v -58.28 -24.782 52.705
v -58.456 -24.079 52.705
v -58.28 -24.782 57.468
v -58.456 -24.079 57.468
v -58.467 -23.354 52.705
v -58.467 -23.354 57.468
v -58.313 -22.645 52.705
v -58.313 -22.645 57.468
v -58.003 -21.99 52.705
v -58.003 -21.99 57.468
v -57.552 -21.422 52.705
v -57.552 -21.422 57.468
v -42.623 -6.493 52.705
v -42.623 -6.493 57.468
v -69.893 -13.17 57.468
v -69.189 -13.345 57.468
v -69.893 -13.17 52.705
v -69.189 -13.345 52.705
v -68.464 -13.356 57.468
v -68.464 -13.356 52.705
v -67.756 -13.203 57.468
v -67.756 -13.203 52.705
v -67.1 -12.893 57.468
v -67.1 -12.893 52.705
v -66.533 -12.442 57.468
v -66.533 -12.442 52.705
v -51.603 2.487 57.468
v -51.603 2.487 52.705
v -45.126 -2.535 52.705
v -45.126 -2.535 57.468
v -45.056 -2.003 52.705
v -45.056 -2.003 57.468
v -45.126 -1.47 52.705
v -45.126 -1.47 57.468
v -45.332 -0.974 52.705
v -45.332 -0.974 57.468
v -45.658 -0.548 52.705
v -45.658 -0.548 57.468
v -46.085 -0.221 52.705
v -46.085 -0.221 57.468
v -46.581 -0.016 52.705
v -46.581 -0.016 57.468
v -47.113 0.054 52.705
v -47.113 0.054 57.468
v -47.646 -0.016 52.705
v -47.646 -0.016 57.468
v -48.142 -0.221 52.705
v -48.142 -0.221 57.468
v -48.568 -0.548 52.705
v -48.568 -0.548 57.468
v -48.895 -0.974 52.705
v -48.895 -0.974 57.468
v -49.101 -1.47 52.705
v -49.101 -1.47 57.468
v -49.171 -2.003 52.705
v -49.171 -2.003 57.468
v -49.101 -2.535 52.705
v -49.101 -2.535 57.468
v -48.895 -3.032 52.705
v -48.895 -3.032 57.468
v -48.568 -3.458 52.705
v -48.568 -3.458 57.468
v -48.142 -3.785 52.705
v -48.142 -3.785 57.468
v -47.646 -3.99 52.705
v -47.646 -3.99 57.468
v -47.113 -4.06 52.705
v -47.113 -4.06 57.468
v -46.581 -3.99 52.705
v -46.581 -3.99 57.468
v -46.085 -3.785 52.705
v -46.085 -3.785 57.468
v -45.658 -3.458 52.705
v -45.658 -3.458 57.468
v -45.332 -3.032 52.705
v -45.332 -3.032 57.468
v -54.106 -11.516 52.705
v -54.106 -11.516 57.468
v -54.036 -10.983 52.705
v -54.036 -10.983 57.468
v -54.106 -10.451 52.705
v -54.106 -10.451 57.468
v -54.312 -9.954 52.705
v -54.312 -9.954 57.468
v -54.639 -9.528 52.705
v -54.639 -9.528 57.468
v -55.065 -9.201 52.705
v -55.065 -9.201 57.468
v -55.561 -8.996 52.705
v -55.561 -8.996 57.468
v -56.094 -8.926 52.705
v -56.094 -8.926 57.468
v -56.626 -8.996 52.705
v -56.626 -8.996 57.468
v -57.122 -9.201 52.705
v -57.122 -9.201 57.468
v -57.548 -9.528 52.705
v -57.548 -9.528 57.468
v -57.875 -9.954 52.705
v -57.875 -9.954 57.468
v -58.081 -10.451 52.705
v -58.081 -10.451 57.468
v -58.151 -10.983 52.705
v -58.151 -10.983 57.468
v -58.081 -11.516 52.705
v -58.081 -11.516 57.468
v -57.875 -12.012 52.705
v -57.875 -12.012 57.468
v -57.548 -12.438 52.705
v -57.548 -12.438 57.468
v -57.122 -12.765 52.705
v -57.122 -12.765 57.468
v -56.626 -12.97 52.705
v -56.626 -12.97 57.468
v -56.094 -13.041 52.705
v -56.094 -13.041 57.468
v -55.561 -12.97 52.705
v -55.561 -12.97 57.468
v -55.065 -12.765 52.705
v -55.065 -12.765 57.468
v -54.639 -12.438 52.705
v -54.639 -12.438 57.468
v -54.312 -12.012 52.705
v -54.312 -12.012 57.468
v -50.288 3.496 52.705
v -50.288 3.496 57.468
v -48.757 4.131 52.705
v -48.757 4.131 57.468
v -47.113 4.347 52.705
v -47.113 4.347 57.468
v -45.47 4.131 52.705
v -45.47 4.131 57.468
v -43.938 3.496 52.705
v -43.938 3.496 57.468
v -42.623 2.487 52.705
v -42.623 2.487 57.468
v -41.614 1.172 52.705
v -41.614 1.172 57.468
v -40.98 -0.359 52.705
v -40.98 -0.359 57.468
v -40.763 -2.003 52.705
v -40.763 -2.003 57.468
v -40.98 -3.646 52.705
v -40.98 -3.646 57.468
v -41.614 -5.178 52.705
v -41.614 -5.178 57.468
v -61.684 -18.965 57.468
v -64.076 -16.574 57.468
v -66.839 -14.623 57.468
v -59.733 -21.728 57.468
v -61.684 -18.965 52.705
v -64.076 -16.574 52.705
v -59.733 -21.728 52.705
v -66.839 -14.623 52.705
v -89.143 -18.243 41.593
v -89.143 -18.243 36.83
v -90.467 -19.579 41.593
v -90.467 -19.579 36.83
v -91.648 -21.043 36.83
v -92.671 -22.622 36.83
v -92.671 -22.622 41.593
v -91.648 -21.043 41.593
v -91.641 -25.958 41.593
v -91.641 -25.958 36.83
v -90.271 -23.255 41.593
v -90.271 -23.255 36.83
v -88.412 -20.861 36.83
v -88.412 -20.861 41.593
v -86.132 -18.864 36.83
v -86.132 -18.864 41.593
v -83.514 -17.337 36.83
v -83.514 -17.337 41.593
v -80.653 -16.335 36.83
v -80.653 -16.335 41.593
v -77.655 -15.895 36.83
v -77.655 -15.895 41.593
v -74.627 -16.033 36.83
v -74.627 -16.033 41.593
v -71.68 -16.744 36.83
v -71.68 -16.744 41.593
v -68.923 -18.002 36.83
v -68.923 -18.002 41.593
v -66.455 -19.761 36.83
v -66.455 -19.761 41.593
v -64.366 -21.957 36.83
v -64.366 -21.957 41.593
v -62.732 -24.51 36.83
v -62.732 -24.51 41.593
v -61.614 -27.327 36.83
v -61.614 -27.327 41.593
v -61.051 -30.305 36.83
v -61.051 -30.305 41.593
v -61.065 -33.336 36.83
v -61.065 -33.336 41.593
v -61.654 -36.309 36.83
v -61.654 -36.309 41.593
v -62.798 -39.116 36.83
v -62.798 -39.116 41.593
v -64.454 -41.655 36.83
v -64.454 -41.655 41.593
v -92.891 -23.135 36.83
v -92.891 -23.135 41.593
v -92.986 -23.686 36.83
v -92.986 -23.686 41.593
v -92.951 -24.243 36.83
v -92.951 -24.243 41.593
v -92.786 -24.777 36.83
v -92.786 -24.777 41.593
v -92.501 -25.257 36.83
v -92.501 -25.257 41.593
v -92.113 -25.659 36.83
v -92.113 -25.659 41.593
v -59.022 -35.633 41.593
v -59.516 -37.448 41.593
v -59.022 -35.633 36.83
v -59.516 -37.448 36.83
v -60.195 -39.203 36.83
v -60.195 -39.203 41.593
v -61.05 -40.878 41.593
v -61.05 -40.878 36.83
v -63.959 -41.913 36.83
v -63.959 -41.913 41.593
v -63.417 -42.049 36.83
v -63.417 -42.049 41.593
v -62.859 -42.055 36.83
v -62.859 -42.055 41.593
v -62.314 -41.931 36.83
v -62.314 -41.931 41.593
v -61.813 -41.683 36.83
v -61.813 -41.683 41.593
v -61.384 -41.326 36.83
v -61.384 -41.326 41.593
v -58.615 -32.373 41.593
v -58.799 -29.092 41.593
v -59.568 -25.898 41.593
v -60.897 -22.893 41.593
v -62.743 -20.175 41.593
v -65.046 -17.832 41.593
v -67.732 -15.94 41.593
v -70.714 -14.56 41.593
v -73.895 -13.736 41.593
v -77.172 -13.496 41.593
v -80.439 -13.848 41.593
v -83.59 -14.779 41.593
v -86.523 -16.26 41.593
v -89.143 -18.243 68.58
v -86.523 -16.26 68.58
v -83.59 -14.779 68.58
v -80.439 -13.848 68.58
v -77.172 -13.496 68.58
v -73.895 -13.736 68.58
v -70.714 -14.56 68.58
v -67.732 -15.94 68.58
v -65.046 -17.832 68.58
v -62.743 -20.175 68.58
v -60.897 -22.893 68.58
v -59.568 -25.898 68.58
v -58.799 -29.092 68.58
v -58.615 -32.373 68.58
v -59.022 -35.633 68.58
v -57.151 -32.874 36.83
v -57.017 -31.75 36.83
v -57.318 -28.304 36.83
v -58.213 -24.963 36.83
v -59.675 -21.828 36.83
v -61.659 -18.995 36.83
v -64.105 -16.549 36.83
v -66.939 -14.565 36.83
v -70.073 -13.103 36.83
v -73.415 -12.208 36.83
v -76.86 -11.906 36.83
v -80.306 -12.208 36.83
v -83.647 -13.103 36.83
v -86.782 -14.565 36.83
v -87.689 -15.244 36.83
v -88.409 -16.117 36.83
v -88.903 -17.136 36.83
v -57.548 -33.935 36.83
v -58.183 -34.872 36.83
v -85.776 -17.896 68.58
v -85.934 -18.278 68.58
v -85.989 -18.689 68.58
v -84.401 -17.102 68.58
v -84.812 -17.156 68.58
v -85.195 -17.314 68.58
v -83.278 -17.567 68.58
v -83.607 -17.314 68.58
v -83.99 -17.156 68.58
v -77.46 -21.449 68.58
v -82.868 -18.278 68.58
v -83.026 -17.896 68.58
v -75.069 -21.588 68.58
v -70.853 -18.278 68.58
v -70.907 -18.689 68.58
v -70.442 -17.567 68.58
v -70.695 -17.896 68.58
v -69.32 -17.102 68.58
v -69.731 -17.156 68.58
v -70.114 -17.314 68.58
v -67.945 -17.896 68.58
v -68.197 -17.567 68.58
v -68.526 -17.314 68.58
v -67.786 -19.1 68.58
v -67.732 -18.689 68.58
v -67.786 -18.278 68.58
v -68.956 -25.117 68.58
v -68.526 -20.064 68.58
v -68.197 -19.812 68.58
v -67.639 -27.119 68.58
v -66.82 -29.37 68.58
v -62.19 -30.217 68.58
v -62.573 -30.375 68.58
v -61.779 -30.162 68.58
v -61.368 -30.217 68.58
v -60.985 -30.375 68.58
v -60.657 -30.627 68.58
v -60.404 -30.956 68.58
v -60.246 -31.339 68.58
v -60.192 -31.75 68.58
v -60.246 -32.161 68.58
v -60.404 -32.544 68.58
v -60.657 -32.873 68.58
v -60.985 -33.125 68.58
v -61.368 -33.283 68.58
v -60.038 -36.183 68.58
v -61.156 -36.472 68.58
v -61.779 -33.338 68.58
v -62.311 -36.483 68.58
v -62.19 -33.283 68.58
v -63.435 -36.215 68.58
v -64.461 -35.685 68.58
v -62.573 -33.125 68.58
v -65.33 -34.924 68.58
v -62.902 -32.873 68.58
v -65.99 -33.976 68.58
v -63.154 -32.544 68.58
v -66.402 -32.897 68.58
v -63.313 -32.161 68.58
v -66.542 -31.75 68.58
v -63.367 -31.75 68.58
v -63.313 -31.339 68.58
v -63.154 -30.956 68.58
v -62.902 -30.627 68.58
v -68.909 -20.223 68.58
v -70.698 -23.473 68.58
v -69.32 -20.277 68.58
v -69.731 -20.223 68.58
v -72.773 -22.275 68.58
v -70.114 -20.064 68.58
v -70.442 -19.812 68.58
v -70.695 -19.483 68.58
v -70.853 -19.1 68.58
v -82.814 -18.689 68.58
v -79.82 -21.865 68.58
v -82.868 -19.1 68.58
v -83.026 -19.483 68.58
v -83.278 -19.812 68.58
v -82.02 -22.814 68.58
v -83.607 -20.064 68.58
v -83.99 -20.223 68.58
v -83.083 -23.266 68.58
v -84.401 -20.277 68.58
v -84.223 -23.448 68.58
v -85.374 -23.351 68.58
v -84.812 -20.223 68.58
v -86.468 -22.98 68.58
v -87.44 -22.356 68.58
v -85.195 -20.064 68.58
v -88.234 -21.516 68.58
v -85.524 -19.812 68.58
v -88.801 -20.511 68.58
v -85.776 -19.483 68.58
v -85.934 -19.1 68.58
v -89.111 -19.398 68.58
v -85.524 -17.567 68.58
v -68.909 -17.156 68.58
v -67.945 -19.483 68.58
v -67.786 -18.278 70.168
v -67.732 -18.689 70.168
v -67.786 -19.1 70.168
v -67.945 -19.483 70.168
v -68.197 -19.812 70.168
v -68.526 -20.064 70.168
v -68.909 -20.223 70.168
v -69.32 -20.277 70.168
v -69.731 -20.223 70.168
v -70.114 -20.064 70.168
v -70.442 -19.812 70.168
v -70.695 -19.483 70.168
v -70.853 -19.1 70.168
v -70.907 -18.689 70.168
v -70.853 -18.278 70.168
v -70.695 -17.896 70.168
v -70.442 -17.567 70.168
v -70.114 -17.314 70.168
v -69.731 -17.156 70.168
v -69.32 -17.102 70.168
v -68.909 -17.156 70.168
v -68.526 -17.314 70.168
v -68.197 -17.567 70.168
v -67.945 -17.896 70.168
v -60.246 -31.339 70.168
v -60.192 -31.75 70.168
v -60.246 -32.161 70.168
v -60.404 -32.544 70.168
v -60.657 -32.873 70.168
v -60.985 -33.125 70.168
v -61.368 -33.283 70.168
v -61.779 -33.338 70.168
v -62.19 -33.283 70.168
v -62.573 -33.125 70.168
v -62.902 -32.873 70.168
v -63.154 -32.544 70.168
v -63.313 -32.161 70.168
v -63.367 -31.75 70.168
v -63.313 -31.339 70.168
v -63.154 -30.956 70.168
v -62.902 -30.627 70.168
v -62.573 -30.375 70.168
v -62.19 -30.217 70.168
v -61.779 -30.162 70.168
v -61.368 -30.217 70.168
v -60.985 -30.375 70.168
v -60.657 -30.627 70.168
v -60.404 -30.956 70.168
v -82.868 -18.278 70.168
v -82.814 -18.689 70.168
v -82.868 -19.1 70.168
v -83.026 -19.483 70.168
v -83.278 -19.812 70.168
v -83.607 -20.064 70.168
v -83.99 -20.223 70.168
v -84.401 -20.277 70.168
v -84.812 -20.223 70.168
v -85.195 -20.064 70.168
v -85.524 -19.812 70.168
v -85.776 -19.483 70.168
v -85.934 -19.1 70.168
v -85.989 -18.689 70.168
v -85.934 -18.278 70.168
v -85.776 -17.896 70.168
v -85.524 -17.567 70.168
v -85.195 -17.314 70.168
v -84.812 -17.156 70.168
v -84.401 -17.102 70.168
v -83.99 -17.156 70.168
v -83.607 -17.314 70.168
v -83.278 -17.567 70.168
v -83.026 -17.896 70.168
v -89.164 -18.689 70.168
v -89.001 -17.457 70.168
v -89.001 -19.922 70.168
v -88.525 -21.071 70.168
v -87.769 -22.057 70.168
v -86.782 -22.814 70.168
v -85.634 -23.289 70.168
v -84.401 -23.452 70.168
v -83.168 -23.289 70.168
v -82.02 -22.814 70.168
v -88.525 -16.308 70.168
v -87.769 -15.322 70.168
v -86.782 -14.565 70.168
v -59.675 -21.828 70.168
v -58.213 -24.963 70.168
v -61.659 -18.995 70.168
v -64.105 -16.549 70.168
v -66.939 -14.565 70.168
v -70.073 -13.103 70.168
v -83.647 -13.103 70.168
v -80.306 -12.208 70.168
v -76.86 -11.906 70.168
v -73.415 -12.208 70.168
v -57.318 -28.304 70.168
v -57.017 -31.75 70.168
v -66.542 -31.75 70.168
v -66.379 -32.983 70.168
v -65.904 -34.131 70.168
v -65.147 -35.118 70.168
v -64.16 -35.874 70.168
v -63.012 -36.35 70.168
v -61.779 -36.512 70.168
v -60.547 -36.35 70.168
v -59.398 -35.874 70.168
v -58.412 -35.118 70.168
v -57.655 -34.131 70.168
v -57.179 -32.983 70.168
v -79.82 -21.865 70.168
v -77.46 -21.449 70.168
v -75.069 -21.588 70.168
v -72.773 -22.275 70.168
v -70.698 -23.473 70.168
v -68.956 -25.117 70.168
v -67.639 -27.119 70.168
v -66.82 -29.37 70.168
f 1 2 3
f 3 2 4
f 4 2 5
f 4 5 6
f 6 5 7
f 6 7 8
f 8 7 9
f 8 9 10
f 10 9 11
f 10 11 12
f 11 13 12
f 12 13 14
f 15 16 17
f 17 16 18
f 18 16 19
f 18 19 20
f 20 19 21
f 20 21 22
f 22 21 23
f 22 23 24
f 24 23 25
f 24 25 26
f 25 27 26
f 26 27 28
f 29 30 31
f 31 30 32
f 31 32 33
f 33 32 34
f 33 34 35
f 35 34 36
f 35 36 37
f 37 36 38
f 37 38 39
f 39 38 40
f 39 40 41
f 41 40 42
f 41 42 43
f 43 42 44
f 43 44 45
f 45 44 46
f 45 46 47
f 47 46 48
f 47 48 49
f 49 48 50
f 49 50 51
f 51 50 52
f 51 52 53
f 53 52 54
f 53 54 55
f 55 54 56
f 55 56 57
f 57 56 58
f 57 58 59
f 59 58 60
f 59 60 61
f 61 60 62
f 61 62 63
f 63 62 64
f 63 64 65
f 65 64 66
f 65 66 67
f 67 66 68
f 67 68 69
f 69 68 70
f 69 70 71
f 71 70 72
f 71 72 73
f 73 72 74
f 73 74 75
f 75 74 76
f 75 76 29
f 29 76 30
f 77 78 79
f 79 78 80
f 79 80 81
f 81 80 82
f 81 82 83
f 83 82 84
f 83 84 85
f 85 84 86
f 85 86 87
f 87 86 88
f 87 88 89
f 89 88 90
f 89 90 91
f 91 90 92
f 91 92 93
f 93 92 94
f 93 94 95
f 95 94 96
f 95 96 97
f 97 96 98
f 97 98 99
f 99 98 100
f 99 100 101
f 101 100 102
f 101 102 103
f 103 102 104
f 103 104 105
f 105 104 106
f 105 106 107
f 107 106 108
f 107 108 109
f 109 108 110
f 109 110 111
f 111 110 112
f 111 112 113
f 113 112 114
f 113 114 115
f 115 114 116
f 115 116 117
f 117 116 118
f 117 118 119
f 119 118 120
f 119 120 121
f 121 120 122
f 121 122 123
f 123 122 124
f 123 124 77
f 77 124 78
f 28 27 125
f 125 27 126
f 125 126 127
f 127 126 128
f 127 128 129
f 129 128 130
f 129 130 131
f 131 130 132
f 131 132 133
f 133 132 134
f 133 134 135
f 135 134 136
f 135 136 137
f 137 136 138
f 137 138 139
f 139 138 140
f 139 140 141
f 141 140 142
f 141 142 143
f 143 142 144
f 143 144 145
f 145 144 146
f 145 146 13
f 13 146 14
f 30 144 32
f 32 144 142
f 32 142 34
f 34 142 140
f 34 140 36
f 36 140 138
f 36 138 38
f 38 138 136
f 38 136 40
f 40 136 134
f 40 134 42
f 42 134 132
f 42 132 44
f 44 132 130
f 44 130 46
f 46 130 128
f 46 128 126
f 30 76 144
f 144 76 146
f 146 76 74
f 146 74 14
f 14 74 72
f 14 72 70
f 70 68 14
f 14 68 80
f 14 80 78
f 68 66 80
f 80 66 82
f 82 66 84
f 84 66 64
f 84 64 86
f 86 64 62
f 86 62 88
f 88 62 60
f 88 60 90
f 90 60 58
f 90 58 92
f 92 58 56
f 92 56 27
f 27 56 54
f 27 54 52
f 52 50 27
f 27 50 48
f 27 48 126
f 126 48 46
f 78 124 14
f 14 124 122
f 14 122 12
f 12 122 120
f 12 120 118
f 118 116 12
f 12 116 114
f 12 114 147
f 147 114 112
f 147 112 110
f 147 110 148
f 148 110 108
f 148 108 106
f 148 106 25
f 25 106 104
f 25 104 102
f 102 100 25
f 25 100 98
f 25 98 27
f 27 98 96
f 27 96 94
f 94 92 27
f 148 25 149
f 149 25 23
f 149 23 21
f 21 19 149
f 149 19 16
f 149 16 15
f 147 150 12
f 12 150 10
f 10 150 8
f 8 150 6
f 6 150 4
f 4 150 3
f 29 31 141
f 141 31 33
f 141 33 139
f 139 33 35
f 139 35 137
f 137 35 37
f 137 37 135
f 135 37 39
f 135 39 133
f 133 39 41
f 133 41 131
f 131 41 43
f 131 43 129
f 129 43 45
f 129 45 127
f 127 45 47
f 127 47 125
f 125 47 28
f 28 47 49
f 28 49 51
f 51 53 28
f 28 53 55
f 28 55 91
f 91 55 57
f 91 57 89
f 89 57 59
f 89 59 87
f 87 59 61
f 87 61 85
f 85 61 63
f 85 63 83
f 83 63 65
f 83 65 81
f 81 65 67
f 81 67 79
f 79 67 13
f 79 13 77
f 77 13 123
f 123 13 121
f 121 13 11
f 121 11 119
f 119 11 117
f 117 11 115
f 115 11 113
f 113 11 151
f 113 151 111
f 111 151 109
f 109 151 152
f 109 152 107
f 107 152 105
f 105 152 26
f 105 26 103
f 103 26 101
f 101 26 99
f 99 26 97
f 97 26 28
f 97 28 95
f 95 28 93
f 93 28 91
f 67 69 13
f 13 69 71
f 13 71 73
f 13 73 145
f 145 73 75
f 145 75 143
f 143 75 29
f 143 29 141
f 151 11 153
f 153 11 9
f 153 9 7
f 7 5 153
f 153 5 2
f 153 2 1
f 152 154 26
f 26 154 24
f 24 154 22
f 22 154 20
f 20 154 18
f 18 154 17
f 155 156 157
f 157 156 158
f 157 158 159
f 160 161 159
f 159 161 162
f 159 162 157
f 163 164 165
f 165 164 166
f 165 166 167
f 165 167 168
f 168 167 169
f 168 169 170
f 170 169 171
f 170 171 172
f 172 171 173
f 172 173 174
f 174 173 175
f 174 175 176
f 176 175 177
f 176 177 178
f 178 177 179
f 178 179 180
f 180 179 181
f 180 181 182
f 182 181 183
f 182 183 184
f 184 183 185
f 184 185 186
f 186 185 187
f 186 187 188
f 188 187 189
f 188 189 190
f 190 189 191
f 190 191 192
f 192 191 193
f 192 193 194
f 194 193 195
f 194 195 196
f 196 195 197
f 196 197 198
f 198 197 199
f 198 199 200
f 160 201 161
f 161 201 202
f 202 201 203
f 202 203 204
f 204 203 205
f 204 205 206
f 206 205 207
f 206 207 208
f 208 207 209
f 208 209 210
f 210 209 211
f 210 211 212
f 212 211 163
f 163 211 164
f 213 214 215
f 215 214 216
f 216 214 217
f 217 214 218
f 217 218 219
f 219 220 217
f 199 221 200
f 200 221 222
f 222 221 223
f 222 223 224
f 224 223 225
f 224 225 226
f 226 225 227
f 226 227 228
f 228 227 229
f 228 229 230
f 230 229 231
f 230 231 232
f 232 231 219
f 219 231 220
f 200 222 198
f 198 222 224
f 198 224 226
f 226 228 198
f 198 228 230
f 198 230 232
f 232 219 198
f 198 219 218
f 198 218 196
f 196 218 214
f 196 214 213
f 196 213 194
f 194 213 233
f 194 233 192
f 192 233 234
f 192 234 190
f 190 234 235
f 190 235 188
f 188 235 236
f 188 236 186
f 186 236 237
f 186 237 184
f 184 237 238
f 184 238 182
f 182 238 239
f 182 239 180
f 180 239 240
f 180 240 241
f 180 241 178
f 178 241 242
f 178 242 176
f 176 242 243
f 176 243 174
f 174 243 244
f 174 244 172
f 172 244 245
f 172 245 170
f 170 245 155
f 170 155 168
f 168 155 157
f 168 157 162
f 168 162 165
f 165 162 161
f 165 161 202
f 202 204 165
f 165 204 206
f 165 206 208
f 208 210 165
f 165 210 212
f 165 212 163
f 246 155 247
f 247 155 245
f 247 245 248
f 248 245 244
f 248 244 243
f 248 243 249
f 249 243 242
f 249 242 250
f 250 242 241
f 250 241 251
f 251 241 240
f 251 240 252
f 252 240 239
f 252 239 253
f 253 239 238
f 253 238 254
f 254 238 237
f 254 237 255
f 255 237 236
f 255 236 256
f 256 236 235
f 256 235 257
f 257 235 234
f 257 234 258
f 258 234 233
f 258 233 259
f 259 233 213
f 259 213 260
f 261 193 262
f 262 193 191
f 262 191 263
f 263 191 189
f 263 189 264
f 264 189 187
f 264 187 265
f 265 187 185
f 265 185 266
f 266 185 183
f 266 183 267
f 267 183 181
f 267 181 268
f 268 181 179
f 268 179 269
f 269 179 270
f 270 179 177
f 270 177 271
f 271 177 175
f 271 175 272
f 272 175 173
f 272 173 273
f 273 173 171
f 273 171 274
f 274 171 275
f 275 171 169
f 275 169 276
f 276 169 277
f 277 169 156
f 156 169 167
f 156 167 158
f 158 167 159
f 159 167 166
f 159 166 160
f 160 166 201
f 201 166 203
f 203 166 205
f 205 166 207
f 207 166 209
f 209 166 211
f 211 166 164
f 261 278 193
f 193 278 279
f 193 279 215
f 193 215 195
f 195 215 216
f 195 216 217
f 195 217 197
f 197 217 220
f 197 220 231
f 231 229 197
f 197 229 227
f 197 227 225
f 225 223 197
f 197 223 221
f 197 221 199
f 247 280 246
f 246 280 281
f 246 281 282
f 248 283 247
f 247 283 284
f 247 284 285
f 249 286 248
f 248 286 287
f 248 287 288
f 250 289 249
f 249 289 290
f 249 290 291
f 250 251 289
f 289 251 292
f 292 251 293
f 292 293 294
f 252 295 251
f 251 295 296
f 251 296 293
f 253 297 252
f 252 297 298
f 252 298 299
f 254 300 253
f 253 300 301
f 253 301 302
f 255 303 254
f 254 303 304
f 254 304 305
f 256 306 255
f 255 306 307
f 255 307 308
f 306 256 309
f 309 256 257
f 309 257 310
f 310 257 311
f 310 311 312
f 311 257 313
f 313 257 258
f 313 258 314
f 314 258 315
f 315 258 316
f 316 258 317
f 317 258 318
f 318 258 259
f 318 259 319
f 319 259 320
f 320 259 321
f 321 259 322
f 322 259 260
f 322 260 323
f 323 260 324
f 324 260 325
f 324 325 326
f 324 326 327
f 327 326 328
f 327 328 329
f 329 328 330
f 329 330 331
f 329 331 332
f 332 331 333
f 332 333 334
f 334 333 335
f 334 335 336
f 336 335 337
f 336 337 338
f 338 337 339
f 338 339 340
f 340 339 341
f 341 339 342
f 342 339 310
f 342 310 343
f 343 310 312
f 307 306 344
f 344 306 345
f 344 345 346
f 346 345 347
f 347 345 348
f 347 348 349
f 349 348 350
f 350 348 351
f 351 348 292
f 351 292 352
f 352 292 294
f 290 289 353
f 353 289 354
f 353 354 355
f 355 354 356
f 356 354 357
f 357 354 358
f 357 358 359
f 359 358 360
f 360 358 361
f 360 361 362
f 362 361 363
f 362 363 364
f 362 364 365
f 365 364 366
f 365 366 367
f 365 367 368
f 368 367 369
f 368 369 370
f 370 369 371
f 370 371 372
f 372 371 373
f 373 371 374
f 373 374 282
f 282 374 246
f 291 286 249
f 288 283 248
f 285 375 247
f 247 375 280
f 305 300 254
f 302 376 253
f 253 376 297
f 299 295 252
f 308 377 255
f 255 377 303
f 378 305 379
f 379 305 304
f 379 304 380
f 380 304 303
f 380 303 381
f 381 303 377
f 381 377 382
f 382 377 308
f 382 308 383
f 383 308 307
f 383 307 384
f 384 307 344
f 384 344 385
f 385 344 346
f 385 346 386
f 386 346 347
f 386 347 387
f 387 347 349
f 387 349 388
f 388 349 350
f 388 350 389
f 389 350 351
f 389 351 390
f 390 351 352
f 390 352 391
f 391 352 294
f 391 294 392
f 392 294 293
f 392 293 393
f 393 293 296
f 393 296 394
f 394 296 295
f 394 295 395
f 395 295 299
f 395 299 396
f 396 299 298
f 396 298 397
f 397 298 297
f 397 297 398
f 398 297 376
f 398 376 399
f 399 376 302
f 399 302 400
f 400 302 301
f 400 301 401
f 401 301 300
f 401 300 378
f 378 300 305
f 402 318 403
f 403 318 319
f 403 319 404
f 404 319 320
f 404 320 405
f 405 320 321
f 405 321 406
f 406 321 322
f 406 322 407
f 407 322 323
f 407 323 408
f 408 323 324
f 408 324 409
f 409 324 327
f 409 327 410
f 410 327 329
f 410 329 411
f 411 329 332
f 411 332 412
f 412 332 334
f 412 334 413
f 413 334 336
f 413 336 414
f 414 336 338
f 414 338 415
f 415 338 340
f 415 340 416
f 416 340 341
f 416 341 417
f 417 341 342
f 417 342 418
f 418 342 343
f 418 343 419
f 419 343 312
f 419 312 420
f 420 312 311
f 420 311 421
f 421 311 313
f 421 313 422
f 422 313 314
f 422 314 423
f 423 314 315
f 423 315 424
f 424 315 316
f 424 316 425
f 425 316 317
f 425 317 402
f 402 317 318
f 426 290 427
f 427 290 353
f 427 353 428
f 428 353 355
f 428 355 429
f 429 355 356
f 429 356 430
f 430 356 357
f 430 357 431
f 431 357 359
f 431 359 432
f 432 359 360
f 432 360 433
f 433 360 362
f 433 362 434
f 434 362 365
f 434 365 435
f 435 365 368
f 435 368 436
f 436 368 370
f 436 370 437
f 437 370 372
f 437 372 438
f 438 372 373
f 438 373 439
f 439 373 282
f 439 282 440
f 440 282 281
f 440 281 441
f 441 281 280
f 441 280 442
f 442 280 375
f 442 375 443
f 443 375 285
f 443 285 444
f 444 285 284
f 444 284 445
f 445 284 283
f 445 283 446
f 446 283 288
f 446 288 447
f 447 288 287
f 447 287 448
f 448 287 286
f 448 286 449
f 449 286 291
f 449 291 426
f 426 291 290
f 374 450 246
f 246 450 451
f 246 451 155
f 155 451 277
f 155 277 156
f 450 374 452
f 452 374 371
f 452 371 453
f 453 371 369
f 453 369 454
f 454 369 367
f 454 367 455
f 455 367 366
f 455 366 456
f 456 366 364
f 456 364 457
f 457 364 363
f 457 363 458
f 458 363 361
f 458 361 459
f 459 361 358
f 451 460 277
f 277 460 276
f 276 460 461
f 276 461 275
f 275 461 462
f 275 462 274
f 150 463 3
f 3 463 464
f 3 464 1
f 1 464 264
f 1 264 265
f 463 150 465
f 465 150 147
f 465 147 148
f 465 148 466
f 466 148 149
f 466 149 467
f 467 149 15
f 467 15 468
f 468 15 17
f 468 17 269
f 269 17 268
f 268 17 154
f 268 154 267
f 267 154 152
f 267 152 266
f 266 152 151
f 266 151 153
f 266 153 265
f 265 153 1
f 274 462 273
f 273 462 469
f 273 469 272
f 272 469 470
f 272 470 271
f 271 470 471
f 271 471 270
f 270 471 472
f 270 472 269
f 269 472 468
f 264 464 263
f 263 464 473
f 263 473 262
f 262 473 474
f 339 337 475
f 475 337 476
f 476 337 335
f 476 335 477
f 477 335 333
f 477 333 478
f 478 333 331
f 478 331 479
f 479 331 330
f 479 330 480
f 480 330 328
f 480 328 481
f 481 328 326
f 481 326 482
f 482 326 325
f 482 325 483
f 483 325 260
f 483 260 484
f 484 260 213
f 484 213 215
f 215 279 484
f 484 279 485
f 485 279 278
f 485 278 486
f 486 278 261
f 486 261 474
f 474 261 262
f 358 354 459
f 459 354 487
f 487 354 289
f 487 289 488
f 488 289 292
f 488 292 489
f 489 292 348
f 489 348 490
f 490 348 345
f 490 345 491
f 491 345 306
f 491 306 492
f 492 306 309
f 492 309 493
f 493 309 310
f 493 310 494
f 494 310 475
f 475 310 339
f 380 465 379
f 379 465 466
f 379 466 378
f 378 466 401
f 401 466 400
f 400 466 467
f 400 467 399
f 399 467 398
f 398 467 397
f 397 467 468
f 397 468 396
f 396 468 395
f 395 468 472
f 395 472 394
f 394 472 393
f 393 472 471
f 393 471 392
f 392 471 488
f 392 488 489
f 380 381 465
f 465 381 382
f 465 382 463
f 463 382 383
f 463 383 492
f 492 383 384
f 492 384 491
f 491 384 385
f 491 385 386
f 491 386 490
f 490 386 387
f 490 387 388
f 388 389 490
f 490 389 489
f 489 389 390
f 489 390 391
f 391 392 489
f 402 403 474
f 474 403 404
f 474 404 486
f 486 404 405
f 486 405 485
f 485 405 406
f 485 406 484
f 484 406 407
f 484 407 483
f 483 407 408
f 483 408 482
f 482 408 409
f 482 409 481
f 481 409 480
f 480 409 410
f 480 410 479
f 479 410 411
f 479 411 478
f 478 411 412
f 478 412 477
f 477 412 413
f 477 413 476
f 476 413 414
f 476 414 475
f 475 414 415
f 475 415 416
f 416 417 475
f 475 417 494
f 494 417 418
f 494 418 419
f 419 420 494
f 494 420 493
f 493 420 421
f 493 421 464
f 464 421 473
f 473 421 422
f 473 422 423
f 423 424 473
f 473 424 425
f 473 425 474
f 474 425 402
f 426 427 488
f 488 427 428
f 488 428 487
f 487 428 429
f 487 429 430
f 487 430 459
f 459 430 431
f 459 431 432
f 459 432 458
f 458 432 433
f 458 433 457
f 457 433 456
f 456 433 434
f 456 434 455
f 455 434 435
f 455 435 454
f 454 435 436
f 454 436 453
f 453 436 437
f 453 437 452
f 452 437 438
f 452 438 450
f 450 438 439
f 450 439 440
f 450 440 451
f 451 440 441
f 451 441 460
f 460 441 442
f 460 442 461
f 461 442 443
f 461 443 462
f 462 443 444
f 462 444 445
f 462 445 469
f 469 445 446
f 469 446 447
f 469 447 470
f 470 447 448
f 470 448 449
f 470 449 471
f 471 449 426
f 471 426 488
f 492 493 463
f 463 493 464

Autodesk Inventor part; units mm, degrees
ref_plane "YZ Plane" through (0, 0, 0) normal (1, 0, 0) x (0, 1, 0)
ref_plane "XZ Plane" through (0, 0, 0) normal (0, 1, 0) x (-1, 0, 0)
ref_plane "Work Plane1" through (-76.8604, -25.4, 68.58) normal (0, 0, 1) x (0, -1, 0)
sketch "Sketch1" plane through (-76.8604, -25.4, 68.58) normal (0, 0, 1) x (0, -1, 0)
  circle A0 centre (-6.7107, -7.5406) radius 1.5875 construction
  circle A1 centre (-6.7107, 7.5406) radius 1.5875 construction
  circle A2 centre (6.35, 15.0812) radius 1.5875 construction
  circle A3 centre (19.4107, 7.5406) radius 1.5875 construction
  circle A4 centre (19.4107, -7.5406) radius 1.5875 construction
  circle A5 centre (6.35, -15.0813) radius 1.5875 construction
  circle A6 centre (15.0813, 0) radius 6.35 construction
  circle A7 centre (6.35, 0) radius 18.2562 construction
  arc A8 (6.35, 19.8437) -> (-10.8352, -9.9219) centre (6.35, 0) ccw
  arc A9 (-10.8352, -9.9219) -> (-2.5863, -5.1594) centre (-6.7107, -7.5406) ccw
  arc A10 (6.35, 10.3187) -> (6.35, 19.8437) centre (6.35, 15.0812) ccw
  arc A11 (6.35, 10.3187) -> (-2.5863, -5.1594) centre (6.35, 0) ccw
  point P0 (-25.4, 76.8604)
  dimension "d0" = 1.5875
extrude "Extrusion1" add sketch "Sketch1" along normal blind 1.5875
sketch "Sketch2" plane through (-76.8604, -25.4, 70.1675) normal (0, 0, 1) x (1, 0, 0)
  circle A0 centre (-7.5406, 6.7107) radius 1.5875 projected
  circle A1 centre (7.5406, 6.7107) radius 1.5875 projected
  circle A2 centre (15.0812, -6.35) radius 1.5875 projected
  point P0 (76.8604, 25.4)
ref_plane "Work Plane2" through (-95.1167, -50.0063, 68.58) normal (0, 0, 1) x (1, 0, 0)
extrude "Extrusion2" cut sketch "Sketch2" against normal up to surface (1.5875 mm away)
sketch "Sketch3" plane through (-76.8604, -25.4, 68.58) normal (0, 0, -1) x (-1, 0, 0)
  circle A0 centre (0, -6.35) radius 18.2562 construction
  circle A1 centre (-7.5406, 6.7107) radius 1.5875 construction
  circle A2 centre (-15.0812, -6.35) radius 1.5875 construction
  circle A3 centre (7.5406, 6.7107) radius 1.5875 construction
  arc A4 (5.1594, 2.5863) -> (-10.3187, -6.35) centre (0, -6.35) ccw construction
  arc A5 (5.1594, 2.5863) -> (9.9219, 10.8352) centre (7.5406, 6.7107) ccw construction
  arc A6 (9.9219, 10.8352) -> (-19.8437, -6.35) centre (0, -6.35) ccw construction
  arc A7 (-19.8437, -6.35) -> (-10.3187, -6.35) centre (-15.0812, -6.35) ccw construction
  arc A8 (-19.8437, -6.35) -> (-10.3187, -6.35) centre (-15.0812, -6.35) ccw construction
  arc A9 (-19.8437, -6.35) -> (-17.8385, -10.2332) centre (-15.0812, -6.35) ccw
  arc A10 (9.9219, 10.8352) -> (-19.8437, -6.35) centre (0, -6.35) ccw
  arc A11 (5.1594, 2.5863) -> (9.9219, 10.8352) centre (7.5406, 6.7107) ccw construction
  arc A12 (12.2822, 7.157) -> (9.9219, 10.8352) centre (7.5406, 6.7107) ccw
  arc A13 (12.2822, 7.157) -> (-17.8385, -10.2332) centre (0, -6.35) ccw
  arc A14 (5.1594, 2.5863) -> (9.9219, 10.8352) centre (7.5406, 6.7107) ccw construction
  point P0 (-76.8604, 25.4)
  point P1 (-17.8385, -2.4668)
  point P2 (5.5563, 11.0402)
extrude "Extrusion3" add sketch "Sketch3" along normal blind 31.75
sketch "Sketch4" plane through (-76.8604, -25.4, 36.83) normal (0, 0, -1) x (-1, 0, 0)
  circle A0 centre (0, -6.35) radius 15.875 construction
  arc A1 (12.2822, 7.157) -> (-17.8385, -10.2332) centre (0, -6.35) ccw construction
  line L0 (0, -6.35) -> (-7.9375, 7.3982) construction
  line L1 (-15.8104, -15.4781) -> (15.8104, 2.7781) construction
  arc A2 (-15.8104, -15.4781) -> (-12.4062, -16.2546) centre (-13.7482, -14.2875) ccw
  arc A3 (14.7808, -0.5582) -> (15.8104, 2.7781) centre (13.7482, 1.5875) ccw
  arc A4 (14.7808, -0.5582) -> (-12.4062, -16.2546) centre (0, -6.35) ccw
  arc A5 (15.8104, 2.7781) -> (-15.8104, -15.4781) centre (0, -6.35) ccw
  circle A6 centre (-7.5406, 6.7107) radius 1.5875 construction
  point P0 (-76.8604, 25.4)
  point P1 (-17.8385, -2.4668)
  point P2 (5.5563, 11.0402)
extrude "Extrusion4" add sketch "Sketch4" against normal blind 4.7625
ref_plane "Work Plane7" through (-76.8604, -25.4, 57.4675) normal (0, 0, 1) x (1, 0, 0)
sketch "Sketch7" plane through (-76.8604, -25.4, 57.4675) normal (0, 0, 1) x (1, 0, 0)
  arc A0 (19.8437, -6.35) -> (-9.9219, 10.8352) centre (0, -6.35) ccw construction
  arc A1 (17.8385, -10.2332) -> (-12.2822, 7.157) centre (0, -6.35) ccw construction
  line L0 (0, -6.35) -> (31.9505, 25.6005) construction
  line L1 (0, -6.35) -> (40.6249, -6.35) construction
  circle A2 centre (20.7668, 14.4168) radius 2.0574
  circle A3 centre (29.7471, 23.3971) radius 2.0574
  arc A4 (28.0319, 2.41) -> (2.9648, 22.8687) centre (0, -6.35) ccw construction
  arc A5 (34.2372, 18.907) -> (25.257, 27.8872) centre (29.7471, 23.3971) ccw
  line L2 (17.784, 2.4537) -> (34.2372, 18.907)
  line L3 (8.8037, 11.434) -> (25.257, 27.8872)
  arc A6 (17.784, 2.4537) -> (8.8037, 11.434) centre (0, -6.35) ccw
  point P0 (76.8604, 25.4)
  dimension "d22" = 45
  dimension "d24" = 4.1148
  dimension "d25" = 4.1148
  dimension "d26" = 12.7
  dimension "d27" = 9.525
  dimension "d29" = 12.7
extrude "Extrusion6" add sketch "Sketch7" against normal blind 4.7625
fillet "Fillet1" radius 3.175 2 edges at (-68.0567, -13.966, 55.0862) (-59.0764, -22.9463, 55.0862)
properties part number "ChasssiPrototypeA2" material "PC/ABS Plastic"
